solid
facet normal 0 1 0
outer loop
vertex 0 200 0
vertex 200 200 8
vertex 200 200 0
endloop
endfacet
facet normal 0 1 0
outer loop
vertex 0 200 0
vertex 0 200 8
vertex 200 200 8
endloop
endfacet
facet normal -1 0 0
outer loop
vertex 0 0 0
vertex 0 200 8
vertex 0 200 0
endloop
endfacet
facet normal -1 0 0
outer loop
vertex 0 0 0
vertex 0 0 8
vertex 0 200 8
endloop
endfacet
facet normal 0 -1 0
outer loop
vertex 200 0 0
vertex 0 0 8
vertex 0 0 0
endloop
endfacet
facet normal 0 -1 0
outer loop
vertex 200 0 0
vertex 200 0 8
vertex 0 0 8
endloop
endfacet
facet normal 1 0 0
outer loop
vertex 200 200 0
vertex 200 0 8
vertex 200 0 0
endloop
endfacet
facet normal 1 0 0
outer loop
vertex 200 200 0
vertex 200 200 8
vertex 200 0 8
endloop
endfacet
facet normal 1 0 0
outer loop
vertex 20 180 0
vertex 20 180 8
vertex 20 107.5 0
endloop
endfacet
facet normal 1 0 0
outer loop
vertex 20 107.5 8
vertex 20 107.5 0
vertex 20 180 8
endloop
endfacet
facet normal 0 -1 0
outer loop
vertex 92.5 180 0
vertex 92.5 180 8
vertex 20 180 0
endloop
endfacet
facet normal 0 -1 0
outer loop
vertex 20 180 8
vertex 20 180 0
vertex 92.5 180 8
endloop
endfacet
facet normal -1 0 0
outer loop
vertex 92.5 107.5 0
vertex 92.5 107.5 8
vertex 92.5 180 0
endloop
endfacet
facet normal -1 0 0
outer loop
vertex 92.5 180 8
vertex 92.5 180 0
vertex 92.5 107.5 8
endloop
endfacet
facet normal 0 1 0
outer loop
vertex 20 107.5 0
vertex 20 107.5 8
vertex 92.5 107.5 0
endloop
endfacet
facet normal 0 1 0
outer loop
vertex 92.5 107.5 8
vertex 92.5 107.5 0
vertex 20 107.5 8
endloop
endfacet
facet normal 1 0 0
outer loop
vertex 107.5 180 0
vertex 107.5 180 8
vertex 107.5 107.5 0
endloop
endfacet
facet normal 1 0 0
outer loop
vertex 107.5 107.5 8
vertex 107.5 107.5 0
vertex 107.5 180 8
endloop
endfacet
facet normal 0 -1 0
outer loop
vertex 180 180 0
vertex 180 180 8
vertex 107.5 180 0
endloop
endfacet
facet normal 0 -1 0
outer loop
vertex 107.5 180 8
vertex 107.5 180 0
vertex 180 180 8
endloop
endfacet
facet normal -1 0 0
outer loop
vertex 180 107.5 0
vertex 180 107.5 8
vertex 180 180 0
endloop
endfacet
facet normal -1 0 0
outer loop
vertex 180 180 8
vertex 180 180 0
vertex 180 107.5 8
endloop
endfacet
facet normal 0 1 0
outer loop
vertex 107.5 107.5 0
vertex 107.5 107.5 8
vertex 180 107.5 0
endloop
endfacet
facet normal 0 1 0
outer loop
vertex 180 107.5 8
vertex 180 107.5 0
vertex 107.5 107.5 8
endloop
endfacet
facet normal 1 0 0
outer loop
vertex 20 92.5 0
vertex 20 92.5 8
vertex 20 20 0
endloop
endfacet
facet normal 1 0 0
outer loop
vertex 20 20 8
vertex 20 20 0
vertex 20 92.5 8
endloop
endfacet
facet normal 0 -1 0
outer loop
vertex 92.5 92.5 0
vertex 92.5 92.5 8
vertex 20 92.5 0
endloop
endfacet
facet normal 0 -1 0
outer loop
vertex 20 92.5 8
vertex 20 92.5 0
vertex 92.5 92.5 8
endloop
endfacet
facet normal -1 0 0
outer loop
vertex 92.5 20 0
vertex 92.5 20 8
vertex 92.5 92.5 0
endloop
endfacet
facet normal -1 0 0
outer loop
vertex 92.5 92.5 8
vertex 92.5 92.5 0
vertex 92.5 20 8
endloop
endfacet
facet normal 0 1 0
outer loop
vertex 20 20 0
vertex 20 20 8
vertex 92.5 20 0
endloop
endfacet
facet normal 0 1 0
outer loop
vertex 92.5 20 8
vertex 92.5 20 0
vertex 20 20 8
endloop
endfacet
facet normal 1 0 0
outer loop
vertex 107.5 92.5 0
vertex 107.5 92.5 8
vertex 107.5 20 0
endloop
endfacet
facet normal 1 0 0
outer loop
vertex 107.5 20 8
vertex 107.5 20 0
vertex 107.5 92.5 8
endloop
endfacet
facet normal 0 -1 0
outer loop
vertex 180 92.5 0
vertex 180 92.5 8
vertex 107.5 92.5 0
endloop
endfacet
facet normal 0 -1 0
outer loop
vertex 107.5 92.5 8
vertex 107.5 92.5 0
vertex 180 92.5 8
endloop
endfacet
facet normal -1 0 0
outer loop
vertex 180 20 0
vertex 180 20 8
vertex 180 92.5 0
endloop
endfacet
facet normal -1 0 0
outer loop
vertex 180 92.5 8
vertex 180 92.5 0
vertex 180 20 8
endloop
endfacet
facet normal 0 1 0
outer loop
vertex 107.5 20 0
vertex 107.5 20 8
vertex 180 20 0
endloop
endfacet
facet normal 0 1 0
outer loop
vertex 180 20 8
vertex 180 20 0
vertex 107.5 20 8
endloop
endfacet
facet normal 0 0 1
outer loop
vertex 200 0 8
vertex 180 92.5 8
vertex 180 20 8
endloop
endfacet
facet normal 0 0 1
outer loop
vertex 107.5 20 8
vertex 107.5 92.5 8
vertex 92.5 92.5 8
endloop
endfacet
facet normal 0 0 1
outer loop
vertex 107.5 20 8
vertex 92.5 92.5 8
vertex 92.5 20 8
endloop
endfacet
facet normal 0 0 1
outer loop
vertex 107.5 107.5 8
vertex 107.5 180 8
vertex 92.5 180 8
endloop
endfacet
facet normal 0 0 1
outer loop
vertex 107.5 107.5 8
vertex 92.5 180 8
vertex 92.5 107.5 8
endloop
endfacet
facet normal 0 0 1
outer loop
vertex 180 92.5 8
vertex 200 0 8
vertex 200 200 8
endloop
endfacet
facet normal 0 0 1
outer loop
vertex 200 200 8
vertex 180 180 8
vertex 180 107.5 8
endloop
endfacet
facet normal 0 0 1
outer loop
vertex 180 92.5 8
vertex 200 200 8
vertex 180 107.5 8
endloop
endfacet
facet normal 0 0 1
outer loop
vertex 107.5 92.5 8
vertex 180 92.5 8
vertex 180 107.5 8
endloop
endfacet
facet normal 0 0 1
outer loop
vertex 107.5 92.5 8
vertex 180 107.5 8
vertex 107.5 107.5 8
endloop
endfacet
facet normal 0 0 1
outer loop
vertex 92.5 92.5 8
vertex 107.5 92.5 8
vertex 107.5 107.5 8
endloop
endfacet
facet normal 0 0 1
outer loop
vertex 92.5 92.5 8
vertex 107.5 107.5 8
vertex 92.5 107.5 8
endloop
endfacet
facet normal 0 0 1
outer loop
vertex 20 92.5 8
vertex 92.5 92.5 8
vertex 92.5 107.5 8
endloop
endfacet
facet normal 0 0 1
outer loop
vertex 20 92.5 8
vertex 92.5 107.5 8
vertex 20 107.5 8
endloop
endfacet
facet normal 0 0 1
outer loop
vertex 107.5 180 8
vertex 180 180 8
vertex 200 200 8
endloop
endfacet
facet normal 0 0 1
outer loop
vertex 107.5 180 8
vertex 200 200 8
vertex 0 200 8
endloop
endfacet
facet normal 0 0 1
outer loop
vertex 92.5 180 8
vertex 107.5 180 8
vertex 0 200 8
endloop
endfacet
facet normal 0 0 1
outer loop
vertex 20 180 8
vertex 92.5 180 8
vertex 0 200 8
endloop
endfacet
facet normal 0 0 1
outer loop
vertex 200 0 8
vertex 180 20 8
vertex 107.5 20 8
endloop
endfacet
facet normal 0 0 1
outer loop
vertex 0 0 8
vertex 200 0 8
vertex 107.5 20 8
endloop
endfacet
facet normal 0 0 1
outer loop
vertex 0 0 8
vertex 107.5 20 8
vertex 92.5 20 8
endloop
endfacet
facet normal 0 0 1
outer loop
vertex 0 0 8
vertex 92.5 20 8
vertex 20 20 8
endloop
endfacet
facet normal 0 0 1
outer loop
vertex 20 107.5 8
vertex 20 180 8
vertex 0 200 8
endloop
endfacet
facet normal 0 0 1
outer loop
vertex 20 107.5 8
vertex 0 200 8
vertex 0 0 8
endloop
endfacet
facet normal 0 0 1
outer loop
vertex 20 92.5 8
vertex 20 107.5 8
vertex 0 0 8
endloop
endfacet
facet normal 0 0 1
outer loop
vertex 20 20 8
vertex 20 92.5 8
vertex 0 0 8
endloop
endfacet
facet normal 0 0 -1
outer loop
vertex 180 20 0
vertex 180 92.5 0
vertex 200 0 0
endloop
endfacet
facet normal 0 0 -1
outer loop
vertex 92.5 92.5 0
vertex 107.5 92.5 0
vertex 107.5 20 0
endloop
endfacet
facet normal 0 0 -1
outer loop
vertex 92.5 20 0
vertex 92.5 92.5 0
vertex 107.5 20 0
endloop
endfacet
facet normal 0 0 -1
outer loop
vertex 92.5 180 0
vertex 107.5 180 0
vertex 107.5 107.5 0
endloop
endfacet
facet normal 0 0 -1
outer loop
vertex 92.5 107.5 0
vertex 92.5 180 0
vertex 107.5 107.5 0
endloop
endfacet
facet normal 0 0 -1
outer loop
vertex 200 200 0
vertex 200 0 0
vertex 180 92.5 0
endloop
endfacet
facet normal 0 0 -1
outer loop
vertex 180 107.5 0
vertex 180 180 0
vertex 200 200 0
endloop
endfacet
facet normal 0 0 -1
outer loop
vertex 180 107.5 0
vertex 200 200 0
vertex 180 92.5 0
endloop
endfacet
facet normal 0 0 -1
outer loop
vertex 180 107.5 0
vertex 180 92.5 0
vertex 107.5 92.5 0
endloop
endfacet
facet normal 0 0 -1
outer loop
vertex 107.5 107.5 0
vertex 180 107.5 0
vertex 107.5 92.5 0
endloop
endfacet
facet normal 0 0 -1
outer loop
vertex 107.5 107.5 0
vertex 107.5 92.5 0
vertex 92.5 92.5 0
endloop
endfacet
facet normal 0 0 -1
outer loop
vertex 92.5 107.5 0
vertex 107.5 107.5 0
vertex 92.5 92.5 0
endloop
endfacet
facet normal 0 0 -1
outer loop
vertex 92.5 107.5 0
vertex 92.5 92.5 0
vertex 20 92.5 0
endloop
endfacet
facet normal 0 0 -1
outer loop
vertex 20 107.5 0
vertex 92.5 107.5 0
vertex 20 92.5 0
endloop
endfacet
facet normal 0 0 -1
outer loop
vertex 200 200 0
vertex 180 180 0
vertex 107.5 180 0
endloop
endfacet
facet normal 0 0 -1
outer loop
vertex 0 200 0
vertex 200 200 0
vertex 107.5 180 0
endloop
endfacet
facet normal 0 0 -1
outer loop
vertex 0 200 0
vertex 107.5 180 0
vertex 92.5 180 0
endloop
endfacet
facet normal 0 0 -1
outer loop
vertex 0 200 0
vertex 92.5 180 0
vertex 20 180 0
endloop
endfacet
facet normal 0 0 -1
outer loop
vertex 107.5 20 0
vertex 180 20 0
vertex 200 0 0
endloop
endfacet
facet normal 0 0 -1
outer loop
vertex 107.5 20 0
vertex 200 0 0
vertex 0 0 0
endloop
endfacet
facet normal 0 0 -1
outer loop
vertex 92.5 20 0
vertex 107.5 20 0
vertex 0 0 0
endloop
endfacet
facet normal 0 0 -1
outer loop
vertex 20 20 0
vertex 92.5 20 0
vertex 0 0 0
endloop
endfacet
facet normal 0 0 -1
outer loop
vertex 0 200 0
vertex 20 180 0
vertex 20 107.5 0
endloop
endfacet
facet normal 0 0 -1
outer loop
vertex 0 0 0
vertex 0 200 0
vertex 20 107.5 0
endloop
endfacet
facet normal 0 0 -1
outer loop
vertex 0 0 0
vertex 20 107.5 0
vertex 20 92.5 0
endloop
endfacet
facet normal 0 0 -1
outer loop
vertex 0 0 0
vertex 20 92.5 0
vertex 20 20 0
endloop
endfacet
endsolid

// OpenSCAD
// Simple 2x2-pane window frame prop, printed flat as one piece.
// Open OpenSCAD, tweak the numbers below, press F6 (render), then File > Export > Export as STL.

outer  = 200; // overall width/height (mm) - keep well under 256 to clear P1S corner exclusion zones
border = 20;  // width of the outer frame members (mm)
bar    = 15;  // width of the center cross bars / mullions (mm)
depth  = 8;   // thickness of the frame (mm) - this becomes print height (Z)

pane_w = (outer - 2*border - bar) / 2;
pane_h = pane_w; // square outer + symmetric grid -> square panes

module frame2d() {
    difference() {
        square([outer, outer]);

        // four pane openings (bottom-left, bottom-right, top-left, top-right)
        translate([border, border])
            square([pane_w, pane_h]);
        translate([border + pane_w + bar, border])
            square([pane_w, pane_h]);
        translate([border, border + pane_h + bar])
            square([pane_w, pane_h]);
        translate([border + pane_w + bar, border + pane_h + bar])
            square([pane_w, pane_h]);
    }
}

linear_extrude(height = depth)
    frame2d();
